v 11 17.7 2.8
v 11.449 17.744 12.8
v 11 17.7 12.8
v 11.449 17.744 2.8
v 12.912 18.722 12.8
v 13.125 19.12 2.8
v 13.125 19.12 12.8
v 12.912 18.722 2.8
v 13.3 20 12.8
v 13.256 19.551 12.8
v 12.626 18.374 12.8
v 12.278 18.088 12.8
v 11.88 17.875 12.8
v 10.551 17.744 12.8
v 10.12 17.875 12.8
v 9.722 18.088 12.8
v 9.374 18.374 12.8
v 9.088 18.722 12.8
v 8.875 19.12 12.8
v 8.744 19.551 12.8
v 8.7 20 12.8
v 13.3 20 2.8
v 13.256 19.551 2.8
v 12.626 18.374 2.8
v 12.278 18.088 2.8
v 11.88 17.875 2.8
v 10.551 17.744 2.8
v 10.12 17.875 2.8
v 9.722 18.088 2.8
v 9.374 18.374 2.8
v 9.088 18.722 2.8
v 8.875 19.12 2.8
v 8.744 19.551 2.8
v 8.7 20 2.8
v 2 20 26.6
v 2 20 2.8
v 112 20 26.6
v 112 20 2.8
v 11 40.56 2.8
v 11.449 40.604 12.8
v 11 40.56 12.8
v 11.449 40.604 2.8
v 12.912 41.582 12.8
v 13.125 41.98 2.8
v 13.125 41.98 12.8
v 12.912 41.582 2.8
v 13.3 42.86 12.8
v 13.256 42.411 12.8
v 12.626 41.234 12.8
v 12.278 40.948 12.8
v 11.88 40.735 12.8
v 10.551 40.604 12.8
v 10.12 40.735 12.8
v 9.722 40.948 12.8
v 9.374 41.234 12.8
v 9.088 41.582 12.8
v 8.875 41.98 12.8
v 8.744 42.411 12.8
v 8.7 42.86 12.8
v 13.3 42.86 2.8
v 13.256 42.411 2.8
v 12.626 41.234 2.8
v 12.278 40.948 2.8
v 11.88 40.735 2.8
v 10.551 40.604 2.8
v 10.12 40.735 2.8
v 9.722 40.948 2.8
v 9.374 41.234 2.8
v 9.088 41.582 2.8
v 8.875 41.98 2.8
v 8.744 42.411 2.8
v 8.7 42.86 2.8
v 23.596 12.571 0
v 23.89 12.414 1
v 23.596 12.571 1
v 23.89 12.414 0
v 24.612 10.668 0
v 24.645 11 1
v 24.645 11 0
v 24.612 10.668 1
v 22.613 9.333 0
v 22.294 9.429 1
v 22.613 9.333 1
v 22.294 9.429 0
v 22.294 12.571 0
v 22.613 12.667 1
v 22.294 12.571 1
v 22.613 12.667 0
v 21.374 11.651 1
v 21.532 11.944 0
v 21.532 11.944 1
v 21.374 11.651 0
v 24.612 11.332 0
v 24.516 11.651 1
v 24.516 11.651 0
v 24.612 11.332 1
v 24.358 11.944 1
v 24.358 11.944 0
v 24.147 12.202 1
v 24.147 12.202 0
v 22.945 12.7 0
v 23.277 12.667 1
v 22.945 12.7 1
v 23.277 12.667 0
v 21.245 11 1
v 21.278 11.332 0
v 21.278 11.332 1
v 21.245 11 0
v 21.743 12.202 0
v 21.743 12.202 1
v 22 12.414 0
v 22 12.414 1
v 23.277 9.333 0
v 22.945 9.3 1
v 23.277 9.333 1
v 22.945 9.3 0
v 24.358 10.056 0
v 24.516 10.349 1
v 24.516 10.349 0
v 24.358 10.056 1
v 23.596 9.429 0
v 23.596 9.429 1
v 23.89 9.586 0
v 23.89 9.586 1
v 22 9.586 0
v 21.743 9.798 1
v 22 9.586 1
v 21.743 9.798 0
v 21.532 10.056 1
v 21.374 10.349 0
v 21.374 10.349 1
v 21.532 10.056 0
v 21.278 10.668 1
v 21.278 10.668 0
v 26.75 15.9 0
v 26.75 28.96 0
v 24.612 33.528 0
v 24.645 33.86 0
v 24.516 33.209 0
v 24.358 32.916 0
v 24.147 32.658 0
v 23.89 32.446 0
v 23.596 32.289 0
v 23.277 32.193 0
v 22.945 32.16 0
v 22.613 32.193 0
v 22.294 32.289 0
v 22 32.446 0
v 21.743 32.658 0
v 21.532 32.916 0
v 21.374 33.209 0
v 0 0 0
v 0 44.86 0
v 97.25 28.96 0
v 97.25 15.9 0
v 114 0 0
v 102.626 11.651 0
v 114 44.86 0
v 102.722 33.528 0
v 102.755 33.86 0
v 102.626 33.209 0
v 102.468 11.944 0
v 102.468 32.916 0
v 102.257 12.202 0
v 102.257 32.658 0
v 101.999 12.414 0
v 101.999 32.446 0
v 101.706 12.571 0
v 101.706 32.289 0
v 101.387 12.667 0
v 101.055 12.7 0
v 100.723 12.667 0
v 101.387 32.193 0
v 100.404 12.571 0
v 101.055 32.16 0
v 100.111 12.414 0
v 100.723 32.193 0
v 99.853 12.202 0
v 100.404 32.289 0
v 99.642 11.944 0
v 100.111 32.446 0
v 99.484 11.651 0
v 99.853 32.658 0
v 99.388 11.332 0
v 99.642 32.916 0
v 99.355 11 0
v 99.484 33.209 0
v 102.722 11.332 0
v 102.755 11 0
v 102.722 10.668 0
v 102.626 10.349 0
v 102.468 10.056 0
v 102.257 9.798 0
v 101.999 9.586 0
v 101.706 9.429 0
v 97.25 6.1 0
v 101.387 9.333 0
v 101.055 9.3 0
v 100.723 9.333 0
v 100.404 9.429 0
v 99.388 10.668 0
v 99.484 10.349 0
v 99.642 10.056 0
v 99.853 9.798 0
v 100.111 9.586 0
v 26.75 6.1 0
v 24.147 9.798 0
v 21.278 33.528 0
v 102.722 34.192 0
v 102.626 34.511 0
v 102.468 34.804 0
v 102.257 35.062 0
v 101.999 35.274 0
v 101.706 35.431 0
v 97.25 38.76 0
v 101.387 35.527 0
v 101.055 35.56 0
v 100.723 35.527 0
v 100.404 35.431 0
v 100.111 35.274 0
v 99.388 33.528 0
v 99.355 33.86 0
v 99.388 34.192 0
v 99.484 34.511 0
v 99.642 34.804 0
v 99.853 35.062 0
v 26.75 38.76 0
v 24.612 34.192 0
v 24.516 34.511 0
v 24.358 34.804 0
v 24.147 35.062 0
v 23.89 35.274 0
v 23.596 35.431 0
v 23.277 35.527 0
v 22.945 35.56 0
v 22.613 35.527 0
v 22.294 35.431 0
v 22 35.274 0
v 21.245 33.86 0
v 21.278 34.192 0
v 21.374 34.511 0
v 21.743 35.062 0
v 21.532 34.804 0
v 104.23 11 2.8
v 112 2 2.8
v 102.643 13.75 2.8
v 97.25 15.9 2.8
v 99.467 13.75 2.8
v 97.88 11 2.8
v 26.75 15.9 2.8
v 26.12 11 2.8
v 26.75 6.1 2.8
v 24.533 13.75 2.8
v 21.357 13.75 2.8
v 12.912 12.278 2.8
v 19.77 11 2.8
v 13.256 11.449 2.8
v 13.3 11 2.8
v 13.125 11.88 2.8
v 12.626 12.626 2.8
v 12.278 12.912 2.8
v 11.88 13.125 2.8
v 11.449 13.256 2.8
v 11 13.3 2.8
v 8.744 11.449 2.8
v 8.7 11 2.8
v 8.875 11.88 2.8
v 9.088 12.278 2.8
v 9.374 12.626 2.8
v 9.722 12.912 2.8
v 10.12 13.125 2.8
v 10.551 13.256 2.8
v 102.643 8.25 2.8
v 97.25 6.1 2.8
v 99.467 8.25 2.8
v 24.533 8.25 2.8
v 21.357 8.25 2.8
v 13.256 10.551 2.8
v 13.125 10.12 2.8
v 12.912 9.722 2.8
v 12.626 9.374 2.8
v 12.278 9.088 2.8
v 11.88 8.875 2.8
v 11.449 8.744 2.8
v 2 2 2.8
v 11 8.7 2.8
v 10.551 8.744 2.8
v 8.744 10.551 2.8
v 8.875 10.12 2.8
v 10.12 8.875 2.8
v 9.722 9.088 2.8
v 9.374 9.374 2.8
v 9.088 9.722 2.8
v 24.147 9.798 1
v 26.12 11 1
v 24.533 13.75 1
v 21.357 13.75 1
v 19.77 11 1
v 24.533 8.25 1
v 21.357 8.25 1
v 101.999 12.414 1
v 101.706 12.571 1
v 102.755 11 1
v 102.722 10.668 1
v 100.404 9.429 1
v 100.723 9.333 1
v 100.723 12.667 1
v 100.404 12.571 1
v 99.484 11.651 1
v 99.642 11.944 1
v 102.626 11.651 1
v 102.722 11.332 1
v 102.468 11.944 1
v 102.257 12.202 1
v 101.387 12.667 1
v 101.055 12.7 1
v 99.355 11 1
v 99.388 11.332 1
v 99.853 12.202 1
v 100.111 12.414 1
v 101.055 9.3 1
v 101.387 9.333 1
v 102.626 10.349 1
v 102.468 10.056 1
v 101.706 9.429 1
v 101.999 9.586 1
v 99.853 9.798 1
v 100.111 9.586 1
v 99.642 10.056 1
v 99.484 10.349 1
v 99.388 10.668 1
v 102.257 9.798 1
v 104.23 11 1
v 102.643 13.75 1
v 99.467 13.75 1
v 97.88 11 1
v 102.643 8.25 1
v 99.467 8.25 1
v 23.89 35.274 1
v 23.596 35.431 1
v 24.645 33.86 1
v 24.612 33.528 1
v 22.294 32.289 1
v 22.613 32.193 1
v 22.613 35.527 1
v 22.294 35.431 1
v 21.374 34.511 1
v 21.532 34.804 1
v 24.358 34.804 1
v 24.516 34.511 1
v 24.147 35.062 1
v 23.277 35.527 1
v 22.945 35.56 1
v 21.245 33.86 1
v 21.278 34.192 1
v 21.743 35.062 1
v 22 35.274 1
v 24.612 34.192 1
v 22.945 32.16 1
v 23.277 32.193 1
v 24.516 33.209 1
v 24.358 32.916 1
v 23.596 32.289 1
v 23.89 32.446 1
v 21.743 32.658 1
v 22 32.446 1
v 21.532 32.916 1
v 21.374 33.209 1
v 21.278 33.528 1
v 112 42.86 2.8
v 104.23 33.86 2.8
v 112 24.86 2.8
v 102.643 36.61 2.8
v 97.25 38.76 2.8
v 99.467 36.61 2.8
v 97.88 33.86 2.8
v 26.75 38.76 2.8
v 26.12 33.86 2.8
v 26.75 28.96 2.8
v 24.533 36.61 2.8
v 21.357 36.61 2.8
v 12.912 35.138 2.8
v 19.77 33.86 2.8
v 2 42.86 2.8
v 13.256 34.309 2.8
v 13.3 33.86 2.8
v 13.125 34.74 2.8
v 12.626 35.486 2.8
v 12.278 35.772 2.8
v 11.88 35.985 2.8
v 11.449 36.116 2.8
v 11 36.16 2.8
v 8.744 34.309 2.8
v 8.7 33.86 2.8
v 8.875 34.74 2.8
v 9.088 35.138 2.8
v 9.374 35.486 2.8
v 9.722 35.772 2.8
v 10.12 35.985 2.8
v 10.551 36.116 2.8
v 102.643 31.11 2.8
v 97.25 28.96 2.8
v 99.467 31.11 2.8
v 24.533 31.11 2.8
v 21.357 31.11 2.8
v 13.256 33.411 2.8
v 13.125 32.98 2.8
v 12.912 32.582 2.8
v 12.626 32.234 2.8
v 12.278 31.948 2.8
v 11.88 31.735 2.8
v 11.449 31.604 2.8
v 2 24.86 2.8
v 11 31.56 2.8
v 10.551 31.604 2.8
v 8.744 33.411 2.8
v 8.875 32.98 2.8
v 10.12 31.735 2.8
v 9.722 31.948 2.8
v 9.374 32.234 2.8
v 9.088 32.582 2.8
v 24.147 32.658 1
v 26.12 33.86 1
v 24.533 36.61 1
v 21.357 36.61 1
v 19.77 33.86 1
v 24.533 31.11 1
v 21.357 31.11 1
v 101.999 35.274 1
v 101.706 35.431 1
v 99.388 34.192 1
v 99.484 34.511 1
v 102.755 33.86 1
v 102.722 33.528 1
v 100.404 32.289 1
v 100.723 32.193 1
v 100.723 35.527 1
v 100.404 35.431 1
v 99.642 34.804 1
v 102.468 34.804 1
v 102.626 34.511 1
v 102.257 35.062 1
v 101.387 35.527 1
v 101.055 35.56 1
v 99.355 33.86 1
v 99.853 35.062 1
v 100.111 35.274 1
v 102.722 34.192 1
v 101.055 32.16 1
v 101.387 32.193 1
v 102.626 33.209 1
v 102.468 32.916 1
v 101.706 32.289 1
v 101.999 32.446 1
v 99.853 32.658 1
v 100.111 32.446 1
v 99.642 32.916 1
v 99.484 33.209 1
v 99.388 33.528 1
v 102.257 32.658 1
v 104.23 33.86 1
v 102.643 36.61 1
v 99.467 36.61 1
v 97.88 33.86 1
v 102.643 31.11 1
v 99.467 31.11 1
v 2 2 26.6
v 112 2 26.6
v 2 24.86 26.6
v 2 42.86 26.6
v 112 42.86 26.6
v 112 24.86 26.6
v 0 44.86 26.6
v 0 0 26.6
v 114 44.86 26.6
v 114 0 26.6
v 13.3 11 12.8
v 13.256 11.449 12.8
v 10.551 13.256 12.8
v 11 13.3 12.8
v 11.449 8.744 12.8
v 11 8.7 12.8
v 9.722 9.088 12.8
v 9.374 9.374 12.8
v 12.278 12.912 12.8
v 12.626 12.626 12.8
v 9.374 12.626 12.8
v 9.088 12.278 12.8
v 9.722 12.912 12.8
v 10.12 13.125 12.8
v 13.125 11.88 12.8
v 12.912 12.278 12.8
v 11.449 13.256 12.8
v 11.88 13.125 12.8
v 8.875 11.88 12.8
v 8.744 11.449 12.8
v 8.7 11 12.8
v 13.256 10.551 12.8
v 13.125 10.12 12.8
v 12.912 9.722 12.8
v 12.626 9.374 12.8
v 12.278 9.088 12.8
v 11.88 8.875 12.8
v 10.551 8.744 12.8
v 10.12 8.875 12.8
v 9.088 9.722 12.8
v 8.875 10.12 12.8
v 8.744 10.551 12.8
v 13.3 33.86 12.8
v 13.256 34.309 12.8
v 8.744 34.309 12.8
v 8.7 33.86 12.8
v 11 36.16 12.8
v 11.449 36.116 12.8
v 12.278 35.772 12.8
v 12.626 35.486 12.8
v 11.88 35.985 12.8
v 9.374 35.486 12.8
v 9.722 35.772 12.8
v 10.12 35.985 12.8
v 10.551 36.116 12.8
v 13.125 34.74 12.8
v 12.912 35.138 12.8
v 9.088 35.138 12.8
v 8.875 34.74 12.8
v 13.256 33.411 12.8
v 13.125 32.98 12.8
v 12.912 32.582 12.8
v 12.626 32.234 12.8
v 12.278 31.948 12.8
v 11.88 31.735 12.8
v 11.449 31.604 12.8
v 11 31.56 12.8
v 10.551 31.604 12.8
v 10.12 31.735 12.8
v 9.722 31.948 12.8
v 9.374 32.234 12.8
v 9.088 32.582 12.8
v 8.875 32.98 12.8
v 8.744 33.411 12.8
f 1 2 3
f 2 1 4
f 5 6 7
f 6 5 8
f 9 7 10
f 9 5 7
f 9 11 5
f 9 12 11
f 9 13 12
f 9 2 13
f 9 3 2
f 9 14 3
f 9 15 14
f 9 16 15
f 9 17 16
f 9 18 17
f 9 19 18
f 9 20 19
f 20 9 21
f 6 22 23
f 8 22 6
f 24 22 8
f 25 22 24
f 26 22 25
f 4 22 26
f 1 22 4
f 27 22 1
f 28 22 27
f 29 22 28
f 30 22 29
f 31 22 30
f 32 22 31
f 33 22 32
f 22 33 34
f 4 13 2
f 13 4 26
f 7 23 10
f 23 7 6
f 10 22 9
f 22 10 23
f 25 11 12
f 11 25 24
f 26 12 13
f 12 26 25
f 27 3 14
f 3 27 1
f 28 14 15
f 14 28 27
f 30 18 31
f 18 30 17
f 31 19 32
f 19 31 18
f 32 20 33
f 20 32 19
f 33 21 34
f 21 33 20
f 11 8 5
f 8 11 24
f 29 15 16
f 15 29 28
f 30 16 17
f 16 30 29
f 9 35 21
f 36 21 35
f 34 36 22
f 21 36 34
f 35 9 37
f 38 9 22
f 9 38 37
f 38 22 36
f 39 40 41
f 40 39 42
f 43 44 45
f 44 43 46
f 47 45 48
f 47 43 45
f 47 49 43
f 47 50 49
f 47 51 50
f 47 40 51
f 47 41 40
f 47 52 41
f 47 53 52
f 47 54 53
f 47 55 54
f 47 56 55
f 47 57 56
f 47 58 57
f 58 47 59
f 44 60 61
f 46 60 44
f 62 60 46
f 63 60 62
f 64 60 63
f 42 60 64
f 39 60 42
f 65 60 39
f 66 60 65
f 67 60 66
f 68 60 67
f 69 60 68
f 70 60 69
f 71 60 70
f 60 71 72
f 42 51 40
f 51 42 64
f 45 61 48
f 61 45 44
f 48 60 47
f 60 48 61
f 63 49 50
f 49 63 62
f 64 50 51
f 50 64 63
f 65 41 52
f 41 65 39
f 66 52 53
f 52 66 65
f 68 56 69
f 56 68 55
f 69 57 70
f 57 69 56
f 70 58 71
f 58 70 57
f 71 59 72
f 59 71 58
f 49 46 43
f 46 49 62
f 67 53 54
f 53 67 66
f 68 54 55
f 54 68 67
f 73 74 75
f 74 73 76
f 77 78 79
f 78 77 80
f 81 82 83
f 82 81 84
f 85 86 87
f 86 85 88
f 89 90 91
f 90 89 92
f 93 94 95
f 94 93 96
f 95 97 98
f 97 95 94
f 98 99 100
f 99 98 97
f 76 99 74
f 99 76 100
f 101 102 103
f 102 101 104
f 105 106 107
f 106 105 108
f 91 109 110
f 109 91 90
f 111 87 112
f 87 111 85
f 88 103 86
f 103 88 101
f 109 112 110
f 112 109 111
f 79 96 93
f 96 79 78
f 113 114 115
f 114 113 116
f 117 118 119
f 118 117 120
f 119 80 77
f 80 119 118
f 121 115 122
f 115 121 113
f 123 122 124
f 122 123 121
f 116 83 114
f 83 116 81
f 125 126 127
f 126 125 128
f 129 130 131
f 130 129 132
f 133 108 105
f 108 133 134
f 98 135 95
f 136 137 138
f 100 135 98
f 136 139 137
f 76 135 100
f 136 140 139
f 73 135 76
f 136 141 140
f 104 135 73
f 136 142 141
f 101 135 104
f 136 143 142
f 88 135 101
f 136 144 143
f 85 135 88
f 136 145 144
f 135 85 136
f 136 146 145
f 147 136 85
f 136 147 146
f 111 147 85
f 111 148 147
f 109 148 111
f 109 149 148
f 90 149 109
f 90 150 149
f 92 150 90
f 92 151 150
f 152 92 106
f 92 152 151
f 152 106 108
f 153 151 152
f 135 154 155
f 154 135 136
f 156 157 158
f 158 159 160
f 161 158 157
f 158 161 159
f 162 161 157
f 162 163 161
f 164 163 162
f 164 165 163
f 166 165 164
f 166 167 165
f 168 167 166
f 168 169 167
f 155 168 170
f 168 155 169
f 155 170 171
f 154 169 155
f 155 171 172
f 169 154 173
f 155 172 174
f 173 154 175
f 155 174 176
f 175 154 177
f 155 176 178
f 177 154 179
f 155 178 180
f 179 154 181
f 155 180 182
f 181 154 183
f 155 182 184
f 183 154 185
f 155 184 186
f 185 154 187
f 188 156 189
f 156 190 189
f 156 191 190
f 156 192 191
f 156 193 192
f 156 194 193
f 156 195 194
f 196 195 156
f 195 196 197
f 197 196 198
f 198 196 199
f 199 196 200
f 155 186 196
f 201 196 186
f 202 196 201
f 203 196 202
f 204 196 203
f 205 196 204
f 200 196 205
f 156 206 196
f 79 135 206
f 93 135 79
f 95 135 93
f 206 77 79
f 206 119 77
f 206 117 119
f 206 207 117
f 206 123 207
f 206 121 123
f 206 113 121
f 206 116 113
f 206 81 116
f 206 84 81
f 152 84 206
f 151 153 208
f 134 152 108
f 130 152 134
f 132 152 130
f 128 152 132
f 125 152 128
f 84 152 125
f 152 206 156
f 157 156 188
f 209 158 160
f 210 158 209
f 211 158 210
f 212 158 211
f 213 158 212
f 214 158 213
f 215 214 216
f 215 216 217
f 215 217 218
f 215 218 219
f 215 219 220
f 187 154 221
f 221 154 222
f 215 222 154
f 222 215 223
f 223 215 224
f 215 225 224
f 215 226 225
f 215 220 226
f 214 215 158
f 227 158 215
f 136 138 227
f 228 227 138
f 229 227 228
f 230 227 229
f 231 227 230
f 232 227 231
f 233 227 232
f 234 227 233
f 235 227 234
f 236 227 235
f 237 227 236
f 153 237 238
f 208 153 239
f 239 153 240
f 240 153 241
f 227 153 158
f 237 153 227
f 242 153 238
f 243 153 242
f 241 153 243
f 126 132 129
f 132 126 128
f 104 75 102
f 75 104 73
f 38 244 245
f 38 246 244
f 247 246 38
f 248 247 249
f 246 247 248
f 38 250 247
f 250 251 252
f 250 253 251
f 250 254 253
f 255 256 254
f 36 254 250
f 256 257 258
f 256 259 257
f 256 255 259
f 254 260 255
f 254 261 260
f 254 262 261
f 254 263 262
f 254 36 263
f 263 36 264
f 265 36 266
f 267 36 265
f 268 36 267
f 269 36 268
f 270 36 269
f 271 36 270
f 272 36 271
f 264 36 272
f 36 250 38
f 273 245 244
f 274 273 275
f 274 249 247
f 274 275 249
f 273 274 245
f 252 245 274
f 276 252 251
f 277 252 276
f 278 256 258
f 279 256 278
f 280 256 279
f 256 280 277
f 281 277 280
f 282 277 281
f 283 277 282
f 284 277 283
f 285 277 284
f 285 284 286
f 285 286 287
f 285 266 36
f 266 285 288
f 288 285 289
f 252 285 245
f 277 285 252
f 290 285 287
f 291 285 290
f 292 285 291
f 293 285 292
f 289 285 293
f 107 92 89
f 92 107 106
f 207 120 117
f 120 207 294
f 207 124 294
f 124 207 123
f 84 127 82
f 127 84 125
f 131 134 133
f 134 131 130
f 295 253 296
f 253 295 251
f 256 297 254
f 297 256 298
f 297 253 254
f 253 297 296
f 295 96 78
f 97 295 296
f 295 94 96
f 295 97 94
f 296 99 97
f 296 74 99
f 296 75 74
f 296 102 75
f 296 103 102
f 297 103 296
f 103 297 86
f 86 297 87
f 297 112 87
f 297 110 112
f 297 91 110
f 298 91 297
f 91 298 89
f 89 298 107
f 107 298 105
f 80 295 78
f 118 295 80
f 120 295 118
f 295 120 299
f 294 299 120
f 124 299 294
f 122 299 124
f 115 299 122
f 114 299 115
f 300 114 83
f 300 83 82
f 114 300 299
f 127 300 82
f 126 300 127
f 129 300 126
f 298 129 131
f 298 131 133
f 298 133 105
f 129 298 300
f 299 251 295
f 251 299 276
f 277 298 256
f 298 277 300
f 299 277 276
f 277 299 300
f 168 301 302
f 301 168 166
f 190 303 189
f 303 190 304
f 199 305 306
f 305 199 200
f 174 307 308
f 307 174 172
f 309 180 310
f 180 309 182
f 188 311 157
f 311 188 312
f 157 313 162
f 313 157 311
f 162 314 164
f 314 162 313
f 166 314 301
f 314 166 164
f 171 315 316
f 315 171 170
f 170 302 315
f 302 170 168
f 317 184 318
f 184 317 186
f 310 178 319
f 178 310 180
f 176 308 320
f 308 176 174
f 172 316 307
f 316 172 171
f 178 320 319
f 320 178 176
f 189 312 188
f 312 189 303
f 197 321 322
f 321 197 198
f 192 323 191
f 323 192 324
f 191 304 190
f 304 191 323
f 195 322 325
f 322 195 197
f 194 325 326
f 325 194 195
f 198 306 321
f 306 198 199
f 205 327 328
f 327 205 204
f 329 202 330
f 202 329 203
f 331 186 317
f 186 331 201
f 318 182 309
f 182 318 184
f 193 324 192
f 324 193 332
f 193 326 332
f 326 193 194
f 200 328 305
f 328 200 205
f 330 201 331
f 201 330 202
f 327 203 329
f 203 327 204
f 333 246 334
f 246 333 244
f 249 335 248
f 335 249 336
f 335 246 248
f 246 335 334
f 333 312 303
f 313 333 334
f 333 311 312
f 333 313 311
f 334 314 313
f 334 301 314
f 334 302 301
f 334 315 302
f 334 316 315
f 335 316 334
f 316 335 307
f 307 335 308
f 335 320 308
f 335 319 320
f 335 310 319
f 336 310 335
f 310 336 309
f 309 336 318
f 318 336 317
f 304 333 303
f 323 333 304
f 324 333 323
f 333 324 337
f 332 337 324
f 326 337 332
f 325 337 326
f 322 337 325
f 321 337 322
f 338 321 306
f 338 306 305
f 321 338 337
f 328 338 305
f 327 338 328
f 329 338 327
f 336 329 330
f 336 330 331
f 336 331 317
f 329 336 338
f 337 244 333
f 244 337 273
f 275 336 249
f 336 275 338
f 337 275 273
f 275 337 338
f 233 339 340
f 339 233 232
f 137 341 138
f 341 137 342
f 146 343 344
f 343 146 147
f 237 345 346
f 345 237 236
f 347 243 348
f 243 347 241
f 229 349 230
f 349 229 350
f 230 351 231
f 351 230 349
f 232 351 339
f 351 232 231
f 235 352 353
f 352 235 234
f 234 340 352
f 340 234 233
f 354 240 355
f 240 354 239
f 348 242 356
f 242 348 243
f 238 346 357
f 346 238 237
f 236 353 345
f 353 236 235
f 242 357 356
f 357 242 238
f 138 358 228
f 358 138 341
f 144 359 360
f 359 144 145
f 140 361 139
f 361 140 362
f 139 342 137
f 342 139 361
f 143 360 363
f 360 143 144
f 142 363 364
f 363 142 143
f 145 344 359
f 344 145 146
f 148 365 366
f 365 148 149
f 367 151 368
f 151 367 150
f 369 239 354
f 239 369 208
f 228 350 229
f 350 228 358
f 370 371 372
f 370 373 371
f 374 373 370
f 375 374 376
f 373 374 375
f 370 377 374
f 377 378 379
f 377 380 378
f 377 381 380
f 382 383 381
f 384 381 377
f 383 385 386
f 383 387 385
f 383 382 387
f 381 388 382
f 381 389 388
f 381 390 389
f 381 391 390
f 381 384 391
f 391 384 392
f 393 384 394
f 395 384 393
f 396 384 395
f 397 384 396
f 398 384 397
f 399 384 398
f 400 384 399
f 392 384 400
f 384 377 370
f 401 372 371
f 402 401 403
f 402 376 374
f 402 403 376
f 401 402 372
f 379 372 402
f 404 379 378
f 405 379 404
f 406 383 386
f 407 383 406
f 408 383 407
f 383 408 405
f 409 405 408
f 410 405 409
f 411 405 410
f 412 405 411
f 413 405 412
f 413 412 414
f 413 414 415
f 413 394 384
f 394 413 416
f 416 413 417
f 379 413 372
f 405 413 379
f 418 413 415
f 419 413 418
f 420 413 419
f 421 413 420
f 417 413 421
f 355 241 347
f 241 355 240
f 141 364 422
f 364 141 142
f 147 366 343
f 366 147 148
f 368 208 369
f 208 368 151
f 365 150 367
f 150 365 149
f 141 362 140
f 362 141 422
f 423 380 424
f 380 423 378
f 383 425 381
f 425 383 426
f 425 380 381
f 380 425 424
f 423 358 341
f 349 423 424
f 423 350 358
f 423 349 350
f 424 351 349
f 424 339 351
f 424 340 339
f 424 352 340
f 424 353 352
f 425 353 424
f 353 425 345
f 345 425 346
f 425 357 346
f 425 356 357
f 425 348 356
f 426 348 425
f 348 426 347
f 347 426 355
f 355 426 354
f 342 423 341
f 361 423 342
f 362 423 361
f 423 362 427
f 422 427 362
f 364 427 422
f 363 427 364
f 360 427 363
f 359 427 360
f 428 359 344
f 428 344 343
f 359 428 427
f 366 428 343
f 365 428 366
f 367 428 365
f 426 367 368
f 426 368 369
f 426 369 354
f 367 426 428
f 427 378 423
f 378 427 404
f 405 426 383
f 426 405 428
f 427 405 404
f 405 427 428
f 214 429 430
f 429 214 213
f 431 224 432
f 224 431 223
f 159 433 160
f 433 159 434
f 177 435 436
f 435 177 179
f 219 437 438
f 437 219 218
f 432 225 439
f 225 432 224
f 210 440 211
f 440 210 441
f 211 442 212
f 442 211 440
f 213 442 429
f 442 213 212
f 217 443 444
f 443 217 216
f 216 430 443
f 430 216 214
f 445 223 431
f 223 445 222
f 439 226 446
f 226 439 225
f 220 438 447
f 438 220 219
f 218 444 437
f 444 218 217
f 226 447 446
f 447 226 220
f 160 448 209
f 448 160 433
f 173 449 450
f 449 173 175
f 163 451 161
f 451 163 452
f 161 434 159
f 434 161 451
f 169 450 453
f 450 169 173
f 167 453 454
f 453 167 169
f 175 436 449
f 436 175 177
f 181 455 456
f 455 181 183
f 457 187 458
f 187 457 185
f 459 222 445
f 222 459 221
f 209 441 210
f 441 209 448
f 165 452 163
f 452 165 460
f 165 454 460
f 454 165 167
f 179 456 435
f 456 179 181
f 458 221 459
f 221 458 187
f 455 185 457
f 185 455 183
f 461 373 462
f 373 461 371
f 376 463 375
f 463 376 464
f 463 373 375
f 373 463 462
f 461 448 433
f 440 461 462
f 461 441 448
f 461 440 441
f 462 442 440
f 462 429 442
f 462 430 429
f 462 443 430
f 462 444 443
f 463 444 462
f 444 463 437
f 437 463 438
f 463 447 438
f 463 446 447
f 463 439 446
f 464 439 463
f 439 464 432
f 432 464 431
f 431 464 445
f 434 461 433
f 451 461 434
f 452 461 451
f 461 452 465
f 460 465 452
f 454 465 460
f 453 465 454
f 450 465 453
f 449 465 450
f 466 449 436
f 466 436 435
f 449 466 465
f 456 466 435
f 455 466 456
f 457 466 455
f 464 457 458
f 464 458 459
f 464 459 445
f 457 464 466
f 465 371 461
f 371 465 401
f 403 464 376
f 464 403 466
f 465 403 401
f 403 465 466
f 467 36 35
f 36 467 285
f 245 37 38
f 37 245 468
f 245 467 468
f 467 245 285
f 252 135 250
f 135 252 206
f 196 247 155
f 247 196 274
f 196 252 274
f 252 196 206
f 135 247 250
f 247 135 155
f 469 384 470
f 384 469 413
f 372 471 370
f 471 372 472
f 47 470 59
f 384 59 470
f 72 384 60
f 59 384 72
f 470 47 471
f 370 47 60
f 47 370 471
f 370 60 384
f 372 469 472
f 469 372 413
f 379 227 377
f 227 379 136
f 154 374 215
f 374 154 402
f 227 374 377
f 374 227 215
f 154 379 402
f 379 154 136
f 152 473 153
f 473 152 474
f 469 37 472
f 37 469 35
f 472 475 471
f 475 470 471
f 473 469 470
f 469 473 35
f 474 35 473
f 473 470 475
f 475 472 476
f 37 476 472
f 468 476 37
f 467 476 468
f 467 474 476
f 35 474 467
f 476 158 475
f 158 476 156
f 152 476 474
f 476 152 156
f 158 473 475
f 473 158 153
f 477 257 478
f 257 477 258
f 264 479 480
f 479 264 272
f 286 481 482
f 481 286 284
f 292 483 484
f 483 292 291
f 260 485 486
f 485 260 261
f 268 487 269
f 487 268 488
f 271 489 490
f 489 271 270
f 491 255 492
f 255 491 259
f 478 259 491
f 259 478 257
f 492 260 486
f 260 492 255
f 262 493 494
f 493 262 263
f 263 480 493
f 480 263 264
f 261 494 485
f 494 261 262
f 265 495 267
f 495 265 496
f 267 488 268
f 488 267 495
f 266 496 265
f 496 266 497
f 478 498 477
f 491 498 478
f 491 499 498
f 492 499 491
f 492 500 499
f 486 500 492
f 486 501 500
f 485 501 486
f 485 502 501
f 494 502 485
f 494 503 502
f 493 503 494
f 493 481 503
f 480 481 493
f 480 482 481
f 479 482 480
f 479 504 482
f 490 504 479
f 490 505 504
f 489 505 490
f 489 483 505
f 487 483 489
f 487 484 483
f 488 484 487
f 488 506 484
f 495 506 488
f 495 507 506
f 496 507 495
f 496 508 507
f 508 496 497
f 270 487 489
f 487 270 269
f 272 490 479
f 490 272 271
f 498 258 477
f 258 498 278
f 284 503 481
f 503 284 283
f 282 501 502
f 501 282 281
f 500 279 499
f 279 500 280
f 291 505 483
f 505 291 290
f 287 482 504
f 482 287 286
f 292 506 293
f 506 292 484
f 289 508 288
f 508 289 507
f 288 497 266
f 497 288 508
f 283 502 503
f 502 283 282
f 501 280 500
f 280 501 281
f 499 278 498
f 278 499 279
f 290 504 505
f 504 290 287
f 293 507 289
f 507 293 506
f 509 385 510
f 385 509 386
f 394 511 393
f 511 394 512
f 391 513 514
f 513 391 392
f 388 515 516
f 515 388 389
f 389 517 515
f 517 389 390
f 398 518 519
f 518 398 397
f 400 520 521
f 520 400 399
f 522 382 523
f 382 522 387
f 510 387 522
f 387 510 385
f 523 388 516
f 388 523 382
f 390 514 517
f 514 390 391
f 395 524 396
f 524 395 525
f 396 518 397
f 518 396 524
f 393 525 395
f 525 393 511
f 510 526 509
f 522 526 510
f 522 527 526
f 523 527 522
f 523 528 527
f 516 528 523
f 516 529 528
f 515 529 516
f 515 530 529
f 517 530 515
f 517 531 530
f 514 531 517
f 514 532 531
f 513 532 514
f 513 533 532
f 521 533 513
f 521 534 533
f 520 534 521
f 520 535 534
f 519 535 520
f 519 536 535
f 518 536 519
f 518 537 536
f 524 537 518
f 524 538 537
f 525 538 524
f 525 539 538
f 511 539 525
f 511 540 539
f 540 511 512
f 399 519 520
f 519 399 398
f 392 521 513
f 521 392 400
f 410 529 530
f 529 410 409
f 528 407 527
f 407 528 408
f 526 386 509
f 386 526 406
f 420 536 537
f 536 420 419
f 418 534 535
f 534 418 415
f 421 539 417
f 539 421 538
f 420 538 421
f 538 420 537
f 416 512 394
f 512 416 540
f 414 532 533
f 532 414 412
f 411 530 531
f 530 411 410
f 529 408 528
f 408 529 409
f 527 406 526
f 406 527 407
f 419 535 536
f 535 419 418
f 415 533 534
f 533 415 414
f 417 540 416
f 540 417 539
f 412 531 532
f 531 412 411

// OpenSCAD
$fn=32;
cartridge_length=109;
cartridge_width=17;
cartridge_spacing=22.86;
bottom_thickness=2.8;
nut_slot_depth=1.8;
connector_length=70.1;
connector_width=9.4;
connector_offset=5;
holes_distance=78.11;
holes_diameter=3.4; // 3 + 0.4
key_diameter=5-0.4; // 5 - 0.4
key_height=10; // 11 - 0.4
key_offset=46;
notch_diameter=5-0.4;
notch_height=10;
tolerance=0.5;
connector_tolerance=0.2;
thickness=2;
bounding_box_length=cartridge_length+tolerance*2+thickness*2;
bounding_box_width=cartridge_width+cartridge_spacing+tolerance*2+thickness*2;
bounding_box_height=15+1.6+10;
difference() {
    // outside shape
    cube([bounding_box_length,bounding_box_width,bounding_box_height]);
    union() {
        // lower slot - cartridge cutout
        translate([thickness,thickness,bottom_thickness]) {
            cube([cartridge_length+tolerance*2,cartridge_width+tolerance*2,bounding_box_height]);
        }
        // lower slot - connector cutout
        translate([thickness+tolerance+cartridge_length/2+5-connector_length/2-connector_tolerance,thickness+tolerance+cartridge_width/2-connector_width/2-connector_tolerance,0]) {
            cube([connector_length+connector_tolerance*2,connector_width+connector_tolerance*2,bottom_thickness]);
        }
        // lower slot - left hole
        translate([thickness+tolerance+cartridge_length/2+5-holes_distance/2,thickness+tolerance+cartridge_width/2,0]) {
            cylinder(d=holes_diameter,h=bottom_thickness);
            // nut slot
            translate([0,0,bottom_thickness-nut_slot_depth]) {
                cylinder(d=5.50*2/sqrt(3), $fn=6, h=nut_slot_depth);
            }
        }
        // lower slot - right hole
        translate([thickness+tolerance+cartridge_length/2+5+holes_distance/2,thickness+tolerance+cartridge_width/2,0]) {
            cylinder(d=holes_diameter,h=bottom_thickness);
            // nut slot
            translate([0,0,bottom_thickness-nut_slot_depth]) {
                cylinder(d=5.50*2/sqrt(3), $fn=6, h=nut_slot_depth);
            }
        }
        // upper slot - cartridge cutout
        translate([thickness,cartridge_spacing+thickness,bottom_thickness]) {
            cube([cartridge_length+tolerance*2,cartridge_width+tolerance*2,bounding_box_height]);
        }
        // upper slot - connector cutout
        translate([thickness+tolerance+cartridge_length/2+5-connector_length/2-connector_tolerance,cartridge_spacing+thickness+tolerance+cartridge_width/2-connector_width/2-connector_tolerance,0]) {
            cube([connector_length+connector_tolerance*2,connector_width+connector_tolerance*2,bottom_thickness]);
        }
        // upper slot - left hole
        translate([thickness+tolerance+cartridge_length/2+5-holes_distance/2,cartridge_spacing+thickness+tolerance+cartridge_width/2,0]) {
            cylinder(d=holes_diameter,h=bottom_thickness);
            // nut slot
            translate([0,0,bottom_thickness-nut_slot_depth]) {
                cylinder(d=5.50*2/sqrt(3), $fn=6, h=nut_slot_depth);
            }
        }
        // upper slot - right hole
        translate([thickness+tolerance+cartridge_length/2+5+holes_distance/2,cartridge_spacing+thickness+tolerance+cartridge_width/2,0]) {
            cylinder(d=holes_diameter,h=bottom_thickness);
            // nut slot
            translate([0,0,bottom_thickness-nut_slot_depth]) {
                cylinder(d=5.50*2/sqrt(3), $fn=6, h=nut_slot_depth);
            }
        }
    }
}
// lower slot - key cylinder
translate([thickness+tolerance+cartridge_length/2-key_offset,thickness+tolerance+cartridge_width/2,bottom_thickness]) {
    cylinder(d=key_diameter,h=key_height);
}
// upper slot - key cylinder
translate([thickness+tolerance+cartridge_length/2-key_offset,cartridge_spacing+thickness+tolerance+cartridge_width/2, bottom_thickness]) {
    cylinder(d=key_diameter,h=key_height);
}

// lower slot - key notch
translate([thickness+tolerance+cartridge_length/2-key_offset,thickness+tolerance*2+cartridge_width,bottom_thickness]) {
    difference() {
        cylinder(d=notch_diameter,h=notch_height);
        translate([-notch_diameter/2,0,0]) {
            cube([notch_diameter,notch_diameter/2,notch_height]);
        }
    }
}
// upper slot - key notch
translate([thickness+tolerance+cartridge_length/2-key_offset,cartridge_spacing+thickness+tolerance*2+cartridge_width,bottom_thickness]) {
    difference() {
        cylinder(d=notch_diameter,h=notch_height);
        translate([-notch_diameter/2,0,0]) {
            cube([notch_diameter,notch_diameter/2,notch_height]);
        }
    }
}
